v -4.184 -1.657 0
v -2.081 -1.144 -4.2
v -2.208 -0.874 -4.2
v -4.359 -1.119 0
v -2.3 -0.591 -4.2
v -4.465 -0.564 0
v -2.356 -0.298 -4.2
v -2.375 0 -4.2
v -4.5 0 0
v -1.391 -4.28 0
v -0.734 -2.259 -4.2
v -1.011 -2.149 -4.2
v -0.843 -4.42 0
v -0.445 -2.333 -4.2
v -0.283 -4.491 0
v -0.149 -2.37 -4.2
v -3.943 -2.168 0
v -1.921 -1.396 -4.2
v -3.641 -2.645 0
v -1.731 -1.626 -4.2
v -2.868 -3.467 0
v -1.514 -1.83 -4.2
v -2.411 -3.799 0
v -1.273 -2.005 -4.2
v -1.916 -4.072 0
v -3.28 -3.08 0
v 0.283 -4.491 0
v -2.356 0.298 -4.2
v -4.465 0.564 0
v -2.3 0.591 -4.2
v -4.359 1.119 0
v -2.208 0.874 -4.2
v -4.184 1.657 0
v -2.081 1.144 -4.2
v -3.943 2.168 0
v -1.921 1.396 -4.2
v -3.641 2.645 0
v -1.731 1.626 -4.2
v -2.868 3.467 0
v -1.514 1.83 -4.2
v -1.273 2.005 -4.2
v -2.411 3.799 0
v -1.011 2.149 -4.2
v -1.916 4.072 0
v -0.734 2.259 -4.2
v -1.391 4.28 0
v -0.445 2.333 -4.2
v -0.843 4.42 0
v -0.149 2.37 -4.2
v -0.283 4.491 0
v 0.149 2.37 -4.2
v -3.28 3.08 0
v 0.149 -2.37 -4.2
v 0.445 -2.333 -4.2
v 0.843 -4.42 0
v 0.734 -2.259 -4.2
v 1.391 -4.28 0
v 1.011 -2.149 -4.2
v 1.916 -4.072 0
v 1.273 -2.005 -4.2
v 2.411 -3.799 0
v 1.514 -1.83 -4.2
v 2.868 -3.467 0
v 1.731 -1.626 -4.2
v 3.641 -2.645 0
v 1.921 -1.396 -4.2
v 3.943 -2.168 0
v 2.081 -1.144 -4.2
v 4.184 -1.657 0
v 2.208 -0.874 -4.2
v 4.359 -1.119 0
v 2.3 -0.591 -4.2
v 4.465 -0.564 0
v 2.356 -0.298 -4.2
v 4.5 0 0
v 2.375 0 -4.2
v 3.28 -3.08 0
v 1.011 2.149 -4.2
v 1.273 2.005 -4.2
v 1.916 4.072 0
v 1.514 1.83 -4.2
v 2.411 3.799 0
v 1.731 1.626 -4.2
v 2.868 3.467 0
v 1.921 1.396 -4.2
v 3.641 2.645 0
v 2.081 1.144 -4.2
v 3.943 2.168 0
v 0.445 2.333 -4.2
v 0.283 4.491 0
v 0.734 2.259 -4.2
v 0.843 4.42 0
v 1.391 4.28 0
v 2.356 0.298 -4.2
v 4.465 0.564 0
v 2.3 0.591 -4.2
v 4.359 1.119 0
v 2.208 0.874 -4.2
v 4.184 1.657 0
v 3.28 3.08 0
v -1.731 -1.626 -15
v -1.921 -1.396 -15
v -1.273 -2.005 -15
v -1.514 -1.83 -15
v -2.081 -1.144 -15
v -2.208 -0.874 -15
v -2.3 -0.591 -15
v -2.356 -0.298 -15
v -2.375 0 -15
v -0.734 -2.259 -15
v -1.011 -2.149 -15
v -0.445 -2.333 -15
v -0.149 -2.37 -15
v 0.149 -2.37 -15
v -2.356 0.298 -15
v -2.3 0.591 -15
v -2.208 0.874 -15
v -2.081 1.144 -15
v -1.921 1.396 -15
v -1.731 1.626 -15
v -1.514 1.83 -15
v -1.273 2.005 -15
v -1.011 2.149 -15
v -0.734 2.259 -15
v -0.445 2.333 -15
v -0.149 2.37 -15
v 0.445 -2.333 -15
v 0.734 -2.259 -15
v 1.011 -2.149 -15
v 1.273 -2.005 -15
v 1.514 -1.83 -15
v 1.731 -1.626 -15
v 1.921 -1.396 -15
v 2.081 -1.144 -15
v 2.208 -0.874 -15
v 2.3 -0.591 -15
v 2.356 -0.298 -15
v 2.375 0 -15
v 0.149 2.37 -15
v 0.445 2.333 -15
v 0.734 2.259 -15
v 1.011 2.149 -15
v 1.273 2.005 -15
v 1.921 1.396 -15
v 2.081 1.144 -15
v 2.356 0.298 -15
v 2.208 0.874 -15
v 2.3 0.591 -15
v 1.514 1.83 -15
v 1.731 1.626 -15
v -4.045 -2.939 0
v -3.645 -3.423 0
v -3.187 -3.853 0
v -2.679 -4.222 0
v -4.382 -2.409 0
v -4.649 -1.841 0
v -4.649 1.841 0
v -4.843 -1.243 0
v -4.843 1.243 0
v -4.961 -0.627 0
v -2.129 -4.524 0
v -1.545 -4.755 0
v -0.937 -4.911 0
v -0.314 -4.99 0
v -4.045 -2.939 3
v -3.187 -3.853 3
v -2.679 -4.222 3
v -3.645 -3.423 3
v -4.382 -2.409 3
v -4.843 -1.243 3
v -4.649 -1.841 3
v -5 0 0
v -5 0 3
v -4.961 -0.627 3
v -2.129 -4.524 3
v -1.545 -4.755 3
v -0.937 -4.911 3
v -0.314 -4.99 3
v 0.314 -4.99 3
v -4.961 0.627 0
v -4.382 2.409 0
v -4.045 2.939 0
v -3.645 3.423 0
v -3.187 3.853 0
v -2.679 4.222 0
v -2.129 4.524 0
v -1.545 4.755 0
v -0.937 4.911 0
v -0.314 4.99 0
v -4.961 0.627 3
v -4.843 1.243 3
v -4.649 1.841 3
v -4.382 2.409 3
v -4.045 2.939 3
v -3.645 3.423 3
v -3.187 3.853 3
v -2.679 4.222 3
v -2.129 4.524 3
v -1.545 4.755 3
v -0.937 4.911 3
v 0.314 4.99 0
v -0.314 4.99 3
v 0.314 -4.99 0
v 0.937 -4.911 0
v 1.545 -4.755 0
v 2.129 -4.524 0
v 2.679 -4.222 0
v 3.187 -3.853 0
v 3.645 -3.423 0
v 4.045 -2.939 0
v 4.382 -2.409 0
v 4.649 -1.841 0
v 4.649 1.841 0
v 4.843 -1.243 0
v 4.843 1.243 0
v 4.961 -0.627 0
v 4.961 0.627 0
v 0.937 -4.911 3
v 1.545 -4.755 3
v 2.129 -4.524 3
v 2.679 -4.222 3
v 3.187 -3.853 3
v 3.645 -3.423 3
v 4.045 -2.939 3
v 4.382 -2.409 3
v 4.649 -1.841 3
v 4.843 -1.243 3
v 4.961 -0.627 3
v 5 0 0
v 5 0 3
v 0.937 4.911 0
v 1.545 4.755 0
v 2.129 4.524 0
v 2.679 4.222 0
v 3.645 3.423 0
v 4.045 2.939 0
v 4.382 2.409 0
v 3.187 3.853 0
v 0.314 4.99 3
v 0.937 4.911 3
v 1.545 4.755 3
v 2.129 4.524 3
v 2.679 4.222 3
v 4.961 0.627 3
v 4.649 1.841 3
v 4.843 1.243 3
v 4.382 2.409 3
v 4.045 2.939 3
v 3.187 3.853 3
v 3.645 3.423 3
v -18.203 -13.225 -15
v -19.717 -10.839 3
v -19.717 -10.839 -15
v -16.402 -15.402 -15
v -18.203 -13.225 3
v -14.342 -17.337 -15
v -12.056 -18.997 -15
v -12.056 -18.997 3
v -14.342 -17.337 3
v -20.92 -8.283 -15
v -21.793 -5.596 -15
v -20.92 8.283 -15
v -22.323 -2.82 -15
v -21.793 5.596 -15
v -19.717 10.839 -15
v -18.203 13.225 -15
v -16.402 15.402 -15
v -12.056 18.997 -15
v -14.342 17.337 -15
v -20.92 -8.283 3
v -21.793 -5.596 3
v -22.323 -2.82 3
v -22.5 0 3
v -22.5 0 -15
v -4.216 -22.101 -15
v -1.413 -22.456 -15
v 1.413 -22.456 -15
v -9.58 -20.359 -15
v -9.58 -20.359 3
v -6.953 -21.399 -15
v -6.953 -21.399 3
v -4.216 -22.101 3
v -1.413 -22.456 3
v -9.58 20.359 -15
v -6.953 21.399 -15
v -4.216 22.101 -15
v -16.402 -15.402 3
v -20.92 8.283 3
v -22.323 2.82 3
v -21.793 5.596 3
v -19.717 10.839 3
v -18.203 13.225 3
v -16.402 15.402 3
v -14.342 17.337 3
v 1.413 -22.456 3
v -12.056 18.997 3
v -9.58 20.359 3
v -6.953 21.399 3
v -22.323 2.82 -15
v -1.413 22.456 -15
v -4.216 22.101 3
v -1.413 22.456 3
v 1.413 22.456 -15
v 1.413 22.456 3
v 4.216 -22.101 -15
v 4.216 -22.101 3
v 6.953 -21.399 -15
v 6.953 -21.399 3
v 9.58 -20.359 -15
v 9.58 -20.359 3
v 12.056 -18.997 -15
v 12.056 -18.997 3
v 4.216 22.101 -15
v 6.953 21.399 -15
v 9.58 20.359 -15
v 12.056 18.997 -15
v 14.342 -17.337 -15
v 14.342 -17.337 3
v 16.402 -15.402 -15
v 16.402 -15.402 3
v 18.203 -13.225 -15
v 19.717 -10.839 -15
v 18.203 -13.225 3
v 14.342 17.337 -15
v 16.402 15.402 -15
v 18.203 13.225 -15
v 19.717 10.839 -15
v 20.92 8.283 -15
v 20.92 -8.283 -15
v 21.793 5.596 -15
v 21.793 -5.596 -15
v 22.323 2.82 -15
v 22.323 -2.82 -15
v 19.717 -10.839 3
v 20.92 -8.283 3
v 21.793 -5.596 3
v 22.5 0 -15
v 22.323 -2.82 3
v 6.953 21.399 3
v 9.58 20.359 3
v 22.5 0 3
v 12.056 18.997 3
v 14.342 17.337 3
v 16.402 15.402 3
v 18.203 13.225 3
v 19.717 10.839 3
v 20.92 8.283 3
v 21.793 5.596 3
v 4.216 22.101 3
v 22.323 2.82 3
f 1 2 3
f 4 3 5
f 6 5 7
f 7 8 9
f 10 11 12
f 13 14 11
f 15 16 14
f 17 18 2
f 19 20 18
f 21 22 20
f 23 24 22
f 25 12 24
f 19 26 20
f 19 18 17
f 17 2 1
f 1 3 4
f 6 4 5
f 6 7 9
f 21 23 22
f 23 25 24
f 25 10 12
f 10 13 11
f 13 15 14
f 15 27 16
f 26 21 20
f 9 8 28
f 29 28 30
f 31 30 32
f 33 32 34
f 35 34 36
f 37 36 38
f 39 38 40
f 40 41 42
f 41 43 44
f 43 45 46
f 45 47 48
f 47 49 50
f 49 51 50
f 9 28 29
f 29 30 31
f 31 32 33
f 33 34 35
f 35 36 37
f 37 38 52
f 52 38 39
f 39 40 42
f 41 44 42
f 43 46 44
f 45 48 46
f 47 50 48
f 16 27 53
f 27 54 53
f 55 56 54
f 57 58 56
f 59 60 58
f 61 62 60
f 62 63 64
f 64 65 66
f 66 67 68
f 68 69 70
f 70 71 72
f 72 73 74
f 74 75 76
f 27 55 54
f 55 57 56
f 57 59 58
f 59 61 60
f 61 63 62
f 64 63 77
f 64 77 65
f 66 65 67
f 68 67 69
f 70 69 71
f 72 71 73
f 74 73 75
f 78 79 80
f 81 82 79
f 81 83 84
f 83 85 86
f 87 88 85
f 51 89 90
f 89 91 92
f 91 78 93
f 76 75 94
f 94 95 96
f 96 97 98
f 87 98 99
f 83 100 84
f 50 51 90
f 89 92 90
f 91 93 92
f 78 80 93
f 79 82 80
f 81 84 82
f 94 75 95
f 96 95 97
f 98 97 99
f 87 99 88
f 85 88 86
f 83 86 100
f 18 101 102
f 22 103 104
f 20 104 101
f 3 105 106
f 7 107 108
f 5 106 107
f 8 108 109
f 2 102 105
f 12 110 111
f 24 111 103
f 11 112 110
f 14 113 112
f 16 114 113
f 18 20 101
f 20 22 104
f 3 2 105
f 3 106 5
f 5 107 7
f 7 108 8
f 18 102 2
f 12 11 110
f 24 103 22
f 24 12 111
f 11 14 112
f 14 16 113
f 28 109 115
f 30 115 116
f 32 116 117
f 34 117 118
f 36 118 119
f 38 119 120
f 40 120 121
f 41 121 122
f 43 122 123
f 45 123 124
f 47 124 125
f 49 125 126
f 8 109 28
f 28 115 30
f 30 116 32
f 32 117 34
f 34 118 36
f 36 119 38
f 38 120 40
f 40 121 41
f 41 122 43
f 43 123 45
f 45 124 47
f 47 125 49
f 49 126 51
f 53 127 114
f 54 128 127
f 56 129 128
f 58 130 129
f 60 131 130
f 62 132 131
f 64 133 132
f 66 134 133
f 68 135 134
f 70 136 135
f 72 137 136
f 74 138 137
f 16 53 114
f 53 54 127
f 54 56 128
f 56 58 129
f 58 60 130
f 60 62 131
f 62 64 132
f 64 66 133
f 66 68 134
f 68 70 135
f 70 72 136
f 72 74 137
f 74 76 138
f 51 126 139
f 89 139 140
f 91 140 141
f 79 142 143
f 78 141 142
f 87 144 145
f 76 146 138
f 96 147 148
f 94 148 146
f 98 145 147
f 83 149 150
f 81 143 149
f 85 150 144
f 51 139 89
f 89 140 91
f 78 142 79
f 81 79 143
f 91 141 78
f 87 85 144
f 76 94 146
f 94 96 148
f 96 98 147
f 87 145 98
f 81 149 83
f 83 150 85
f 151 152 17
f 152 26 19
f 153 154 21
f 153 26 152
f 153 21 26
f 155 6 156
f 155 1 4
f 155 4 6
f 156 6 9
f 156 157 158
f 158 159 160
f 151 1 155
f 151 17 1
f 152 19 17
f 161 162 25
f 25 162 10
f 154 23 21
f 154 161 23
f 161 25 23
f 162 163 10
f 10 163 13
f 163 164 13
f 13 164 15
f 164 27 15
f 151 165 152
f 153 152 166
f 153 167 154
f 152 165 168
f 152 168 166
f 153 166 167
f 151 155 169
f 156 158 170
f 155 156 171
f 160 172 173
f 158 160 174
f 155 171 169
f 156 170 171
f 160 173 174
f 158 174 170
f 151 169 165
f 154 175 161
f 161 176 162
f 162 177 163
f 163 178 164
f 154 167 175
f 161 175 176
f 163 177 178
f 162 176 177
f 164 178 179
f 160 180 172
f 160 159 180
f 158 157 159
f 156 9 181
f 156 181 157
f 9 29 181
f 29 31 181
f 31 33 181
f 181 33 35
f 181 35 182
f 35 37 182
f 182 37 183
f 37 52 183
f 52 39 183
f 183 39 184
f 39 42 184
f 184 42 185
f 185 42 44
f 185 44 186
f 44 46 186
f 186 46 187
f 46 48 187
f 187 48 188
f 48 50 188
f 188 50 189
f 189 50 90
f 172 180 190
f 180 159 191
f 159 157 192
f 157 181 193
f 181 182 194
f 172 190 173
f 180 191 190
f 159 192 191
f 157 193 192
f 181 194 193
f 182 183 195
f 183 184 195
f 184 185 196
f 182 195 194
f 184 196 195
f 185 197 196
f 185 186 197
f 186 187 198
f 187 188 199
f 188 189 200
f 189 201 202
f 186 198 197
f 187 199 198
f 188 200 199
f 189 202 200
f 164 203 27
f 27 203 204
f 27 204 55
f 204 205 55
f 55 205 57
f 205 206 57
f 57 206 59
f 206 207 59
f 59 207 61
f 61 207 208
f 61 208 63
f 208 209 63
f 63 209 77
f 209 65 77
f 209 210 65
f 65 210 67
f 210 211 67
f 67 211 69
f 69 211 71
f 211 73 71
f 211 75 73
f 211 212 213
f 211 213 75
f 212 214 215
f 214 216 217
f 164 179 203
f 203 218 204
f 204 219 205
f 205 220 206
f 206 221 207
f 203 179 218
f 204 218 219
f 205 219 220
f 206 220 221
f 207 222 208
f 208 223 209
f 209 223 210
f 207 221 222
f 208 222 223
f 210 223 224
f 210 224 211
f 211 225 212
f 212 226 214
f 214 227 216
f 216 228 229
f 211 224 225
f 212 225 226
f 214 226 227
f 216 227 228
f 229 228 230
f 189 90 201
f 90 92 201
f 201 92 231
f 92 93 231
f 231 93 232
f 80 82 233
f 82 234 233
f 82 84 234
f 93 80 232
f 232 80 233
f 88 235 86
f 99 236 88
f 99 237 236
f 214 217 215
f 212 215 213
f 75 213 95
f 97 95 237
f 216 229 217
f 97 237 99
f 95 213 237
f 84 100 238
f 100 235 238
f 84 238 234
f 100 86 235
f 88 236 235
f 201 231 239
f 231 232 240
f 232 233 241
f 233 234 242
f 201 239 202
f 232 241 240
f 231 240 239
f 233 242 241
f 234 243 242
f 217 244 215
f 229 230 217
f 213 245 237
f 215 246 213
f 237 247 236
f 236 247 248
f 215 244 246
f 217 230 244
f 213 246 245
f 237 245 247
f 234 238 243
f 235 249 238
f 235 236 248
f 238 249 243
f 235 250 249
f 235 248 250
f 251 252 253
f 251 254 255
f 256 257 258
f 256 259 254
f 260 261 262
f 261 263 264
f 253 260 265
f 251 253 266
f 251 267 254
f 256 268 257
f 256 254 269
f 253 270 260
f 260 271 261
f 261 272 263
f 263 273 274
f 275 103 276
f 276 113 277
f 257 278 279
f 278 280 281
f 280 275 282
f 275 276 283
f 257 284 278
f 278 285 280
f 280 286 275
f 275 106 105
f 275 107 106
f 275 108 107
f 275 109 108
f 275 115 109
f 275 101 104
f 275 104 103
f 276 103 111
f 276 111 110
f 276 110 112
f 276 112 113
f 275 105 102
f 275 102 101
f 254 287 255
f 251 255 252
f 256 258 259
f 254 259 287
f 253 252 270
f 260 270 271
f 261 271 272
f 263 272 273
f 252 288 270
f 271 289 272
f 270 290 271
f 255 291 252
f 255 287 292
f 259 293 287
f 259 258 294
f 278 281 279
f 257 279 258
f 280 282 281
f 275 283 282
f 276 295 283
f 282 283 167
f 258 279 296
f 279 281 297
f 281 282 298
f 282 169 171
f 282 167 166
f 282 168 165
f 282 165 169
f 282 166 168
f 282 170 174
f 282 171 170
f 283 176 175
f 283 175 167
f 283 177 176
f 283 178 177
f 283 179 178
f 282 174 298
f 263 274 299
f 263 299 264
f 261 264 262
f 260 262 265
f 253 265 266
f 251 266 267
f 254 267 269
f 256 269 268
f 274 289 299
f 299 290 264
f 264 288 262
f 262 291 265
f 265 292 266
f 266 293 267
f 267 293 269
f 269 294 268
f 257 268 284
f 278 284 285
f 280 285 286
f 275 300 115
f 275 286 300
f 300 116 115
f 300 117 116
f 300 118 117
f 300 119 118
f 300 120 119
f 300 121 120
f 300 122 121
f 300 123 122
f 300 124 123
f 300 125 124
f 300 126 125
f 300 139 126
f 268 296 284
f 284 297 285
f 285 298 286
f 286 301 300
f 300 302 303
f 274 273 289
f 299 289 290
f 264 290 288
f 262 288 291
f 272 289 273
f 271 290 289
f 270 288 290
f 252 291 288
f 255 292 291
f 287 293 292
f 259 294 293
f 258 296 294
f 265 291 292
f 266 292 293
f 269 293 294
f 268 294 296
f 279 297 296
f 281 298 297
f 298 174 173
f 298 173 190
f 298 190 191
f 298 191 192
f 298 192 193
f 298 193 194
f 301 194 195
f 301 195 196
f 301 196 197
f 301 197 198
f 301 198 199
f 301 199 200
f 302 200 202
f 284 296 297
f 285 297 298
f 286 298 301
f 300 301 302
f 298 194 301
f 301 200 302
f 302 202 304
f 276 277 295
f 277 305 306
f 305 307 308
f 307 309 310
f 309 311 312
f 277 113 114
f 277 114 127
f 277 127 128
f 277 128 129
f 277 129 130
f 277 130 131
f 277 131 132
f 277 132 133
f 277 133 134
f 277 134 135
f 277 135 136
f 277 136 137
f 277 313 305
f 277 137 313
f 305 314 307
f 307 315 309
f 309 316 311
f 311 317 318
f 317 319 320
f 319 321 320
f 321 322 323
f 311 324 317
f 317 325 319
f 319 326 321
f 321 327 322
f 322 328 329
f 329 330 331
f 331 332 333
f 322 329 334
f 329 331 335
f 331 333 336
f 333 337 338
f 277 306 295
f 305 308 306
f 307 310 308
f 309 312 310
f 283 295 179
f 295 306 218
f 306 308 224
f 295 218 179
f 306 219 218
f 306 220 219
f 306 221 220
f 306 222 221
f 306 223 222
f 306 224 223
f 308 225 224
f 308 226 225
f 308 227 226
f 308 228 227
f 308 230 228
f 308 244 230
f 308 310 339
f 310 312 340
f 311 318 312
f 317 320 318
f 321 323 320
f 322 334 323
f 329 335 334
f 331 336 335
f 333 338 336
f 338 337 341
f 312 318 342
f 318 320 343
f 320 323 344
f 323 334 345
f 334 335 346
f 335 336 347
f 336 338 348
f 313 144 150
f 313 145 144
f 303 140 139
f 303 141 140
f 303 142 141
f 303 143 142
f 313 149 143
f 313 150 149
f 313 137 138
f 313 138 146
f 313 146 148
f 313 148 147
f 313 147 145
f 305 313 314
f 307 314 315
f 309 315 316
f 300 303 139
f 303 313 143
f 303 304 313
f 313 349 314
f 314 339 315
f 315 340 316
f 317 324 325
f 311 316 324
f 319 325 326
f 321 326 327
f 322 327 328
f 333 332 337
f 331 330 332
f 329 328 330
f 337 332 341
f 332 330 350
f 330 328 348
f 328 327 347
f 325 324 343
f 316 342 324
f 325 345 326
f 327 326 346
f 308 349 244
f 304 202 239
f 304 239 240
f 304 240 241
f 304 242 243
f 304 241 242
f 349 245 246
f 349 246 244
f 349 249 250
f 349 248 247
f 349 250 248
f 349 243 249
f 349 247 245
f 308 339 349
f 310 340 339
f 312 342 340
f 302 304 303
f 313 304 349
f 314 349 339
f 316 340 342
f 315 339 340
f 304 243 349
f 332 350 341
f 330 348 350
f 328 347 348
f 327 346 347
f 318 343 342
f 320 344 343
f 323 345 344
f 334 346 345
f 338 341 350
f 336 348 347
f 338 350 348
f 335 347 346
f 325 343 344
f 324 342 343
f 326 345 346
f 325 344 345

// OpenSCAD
$fn = 50;

difference() {
	union() {
		translate(v = [0, 0, -15.0]) {
			cylinder(h = 18, r = 22.5);
		}
	}
	union() {
		translate(v = [0, 0, 0]) {
			rotate(a = [0, 0, 0]) {
				difference() {
					union() {
						translate(v = [0, 0, -18.0]) {
							cylinder(h = 18, r = 2.25);
						}
						translate(v = [0, 0, -4.2]) {
							cylinder(h = 4.2, r1 = 2.375, r2 = 4.5);
						}
						translate(v = [0, 0, -18.0]) {
							cylinder(h = 18, r = 2.375);
						}
						translate(v = [0, 0, -18.0]) {
							cylinder(h = 18, r = 2.25);
						}
					}
					union();
				}
			}
		}
		#cylinder(h = 3, r = 5.0);
	}
}
